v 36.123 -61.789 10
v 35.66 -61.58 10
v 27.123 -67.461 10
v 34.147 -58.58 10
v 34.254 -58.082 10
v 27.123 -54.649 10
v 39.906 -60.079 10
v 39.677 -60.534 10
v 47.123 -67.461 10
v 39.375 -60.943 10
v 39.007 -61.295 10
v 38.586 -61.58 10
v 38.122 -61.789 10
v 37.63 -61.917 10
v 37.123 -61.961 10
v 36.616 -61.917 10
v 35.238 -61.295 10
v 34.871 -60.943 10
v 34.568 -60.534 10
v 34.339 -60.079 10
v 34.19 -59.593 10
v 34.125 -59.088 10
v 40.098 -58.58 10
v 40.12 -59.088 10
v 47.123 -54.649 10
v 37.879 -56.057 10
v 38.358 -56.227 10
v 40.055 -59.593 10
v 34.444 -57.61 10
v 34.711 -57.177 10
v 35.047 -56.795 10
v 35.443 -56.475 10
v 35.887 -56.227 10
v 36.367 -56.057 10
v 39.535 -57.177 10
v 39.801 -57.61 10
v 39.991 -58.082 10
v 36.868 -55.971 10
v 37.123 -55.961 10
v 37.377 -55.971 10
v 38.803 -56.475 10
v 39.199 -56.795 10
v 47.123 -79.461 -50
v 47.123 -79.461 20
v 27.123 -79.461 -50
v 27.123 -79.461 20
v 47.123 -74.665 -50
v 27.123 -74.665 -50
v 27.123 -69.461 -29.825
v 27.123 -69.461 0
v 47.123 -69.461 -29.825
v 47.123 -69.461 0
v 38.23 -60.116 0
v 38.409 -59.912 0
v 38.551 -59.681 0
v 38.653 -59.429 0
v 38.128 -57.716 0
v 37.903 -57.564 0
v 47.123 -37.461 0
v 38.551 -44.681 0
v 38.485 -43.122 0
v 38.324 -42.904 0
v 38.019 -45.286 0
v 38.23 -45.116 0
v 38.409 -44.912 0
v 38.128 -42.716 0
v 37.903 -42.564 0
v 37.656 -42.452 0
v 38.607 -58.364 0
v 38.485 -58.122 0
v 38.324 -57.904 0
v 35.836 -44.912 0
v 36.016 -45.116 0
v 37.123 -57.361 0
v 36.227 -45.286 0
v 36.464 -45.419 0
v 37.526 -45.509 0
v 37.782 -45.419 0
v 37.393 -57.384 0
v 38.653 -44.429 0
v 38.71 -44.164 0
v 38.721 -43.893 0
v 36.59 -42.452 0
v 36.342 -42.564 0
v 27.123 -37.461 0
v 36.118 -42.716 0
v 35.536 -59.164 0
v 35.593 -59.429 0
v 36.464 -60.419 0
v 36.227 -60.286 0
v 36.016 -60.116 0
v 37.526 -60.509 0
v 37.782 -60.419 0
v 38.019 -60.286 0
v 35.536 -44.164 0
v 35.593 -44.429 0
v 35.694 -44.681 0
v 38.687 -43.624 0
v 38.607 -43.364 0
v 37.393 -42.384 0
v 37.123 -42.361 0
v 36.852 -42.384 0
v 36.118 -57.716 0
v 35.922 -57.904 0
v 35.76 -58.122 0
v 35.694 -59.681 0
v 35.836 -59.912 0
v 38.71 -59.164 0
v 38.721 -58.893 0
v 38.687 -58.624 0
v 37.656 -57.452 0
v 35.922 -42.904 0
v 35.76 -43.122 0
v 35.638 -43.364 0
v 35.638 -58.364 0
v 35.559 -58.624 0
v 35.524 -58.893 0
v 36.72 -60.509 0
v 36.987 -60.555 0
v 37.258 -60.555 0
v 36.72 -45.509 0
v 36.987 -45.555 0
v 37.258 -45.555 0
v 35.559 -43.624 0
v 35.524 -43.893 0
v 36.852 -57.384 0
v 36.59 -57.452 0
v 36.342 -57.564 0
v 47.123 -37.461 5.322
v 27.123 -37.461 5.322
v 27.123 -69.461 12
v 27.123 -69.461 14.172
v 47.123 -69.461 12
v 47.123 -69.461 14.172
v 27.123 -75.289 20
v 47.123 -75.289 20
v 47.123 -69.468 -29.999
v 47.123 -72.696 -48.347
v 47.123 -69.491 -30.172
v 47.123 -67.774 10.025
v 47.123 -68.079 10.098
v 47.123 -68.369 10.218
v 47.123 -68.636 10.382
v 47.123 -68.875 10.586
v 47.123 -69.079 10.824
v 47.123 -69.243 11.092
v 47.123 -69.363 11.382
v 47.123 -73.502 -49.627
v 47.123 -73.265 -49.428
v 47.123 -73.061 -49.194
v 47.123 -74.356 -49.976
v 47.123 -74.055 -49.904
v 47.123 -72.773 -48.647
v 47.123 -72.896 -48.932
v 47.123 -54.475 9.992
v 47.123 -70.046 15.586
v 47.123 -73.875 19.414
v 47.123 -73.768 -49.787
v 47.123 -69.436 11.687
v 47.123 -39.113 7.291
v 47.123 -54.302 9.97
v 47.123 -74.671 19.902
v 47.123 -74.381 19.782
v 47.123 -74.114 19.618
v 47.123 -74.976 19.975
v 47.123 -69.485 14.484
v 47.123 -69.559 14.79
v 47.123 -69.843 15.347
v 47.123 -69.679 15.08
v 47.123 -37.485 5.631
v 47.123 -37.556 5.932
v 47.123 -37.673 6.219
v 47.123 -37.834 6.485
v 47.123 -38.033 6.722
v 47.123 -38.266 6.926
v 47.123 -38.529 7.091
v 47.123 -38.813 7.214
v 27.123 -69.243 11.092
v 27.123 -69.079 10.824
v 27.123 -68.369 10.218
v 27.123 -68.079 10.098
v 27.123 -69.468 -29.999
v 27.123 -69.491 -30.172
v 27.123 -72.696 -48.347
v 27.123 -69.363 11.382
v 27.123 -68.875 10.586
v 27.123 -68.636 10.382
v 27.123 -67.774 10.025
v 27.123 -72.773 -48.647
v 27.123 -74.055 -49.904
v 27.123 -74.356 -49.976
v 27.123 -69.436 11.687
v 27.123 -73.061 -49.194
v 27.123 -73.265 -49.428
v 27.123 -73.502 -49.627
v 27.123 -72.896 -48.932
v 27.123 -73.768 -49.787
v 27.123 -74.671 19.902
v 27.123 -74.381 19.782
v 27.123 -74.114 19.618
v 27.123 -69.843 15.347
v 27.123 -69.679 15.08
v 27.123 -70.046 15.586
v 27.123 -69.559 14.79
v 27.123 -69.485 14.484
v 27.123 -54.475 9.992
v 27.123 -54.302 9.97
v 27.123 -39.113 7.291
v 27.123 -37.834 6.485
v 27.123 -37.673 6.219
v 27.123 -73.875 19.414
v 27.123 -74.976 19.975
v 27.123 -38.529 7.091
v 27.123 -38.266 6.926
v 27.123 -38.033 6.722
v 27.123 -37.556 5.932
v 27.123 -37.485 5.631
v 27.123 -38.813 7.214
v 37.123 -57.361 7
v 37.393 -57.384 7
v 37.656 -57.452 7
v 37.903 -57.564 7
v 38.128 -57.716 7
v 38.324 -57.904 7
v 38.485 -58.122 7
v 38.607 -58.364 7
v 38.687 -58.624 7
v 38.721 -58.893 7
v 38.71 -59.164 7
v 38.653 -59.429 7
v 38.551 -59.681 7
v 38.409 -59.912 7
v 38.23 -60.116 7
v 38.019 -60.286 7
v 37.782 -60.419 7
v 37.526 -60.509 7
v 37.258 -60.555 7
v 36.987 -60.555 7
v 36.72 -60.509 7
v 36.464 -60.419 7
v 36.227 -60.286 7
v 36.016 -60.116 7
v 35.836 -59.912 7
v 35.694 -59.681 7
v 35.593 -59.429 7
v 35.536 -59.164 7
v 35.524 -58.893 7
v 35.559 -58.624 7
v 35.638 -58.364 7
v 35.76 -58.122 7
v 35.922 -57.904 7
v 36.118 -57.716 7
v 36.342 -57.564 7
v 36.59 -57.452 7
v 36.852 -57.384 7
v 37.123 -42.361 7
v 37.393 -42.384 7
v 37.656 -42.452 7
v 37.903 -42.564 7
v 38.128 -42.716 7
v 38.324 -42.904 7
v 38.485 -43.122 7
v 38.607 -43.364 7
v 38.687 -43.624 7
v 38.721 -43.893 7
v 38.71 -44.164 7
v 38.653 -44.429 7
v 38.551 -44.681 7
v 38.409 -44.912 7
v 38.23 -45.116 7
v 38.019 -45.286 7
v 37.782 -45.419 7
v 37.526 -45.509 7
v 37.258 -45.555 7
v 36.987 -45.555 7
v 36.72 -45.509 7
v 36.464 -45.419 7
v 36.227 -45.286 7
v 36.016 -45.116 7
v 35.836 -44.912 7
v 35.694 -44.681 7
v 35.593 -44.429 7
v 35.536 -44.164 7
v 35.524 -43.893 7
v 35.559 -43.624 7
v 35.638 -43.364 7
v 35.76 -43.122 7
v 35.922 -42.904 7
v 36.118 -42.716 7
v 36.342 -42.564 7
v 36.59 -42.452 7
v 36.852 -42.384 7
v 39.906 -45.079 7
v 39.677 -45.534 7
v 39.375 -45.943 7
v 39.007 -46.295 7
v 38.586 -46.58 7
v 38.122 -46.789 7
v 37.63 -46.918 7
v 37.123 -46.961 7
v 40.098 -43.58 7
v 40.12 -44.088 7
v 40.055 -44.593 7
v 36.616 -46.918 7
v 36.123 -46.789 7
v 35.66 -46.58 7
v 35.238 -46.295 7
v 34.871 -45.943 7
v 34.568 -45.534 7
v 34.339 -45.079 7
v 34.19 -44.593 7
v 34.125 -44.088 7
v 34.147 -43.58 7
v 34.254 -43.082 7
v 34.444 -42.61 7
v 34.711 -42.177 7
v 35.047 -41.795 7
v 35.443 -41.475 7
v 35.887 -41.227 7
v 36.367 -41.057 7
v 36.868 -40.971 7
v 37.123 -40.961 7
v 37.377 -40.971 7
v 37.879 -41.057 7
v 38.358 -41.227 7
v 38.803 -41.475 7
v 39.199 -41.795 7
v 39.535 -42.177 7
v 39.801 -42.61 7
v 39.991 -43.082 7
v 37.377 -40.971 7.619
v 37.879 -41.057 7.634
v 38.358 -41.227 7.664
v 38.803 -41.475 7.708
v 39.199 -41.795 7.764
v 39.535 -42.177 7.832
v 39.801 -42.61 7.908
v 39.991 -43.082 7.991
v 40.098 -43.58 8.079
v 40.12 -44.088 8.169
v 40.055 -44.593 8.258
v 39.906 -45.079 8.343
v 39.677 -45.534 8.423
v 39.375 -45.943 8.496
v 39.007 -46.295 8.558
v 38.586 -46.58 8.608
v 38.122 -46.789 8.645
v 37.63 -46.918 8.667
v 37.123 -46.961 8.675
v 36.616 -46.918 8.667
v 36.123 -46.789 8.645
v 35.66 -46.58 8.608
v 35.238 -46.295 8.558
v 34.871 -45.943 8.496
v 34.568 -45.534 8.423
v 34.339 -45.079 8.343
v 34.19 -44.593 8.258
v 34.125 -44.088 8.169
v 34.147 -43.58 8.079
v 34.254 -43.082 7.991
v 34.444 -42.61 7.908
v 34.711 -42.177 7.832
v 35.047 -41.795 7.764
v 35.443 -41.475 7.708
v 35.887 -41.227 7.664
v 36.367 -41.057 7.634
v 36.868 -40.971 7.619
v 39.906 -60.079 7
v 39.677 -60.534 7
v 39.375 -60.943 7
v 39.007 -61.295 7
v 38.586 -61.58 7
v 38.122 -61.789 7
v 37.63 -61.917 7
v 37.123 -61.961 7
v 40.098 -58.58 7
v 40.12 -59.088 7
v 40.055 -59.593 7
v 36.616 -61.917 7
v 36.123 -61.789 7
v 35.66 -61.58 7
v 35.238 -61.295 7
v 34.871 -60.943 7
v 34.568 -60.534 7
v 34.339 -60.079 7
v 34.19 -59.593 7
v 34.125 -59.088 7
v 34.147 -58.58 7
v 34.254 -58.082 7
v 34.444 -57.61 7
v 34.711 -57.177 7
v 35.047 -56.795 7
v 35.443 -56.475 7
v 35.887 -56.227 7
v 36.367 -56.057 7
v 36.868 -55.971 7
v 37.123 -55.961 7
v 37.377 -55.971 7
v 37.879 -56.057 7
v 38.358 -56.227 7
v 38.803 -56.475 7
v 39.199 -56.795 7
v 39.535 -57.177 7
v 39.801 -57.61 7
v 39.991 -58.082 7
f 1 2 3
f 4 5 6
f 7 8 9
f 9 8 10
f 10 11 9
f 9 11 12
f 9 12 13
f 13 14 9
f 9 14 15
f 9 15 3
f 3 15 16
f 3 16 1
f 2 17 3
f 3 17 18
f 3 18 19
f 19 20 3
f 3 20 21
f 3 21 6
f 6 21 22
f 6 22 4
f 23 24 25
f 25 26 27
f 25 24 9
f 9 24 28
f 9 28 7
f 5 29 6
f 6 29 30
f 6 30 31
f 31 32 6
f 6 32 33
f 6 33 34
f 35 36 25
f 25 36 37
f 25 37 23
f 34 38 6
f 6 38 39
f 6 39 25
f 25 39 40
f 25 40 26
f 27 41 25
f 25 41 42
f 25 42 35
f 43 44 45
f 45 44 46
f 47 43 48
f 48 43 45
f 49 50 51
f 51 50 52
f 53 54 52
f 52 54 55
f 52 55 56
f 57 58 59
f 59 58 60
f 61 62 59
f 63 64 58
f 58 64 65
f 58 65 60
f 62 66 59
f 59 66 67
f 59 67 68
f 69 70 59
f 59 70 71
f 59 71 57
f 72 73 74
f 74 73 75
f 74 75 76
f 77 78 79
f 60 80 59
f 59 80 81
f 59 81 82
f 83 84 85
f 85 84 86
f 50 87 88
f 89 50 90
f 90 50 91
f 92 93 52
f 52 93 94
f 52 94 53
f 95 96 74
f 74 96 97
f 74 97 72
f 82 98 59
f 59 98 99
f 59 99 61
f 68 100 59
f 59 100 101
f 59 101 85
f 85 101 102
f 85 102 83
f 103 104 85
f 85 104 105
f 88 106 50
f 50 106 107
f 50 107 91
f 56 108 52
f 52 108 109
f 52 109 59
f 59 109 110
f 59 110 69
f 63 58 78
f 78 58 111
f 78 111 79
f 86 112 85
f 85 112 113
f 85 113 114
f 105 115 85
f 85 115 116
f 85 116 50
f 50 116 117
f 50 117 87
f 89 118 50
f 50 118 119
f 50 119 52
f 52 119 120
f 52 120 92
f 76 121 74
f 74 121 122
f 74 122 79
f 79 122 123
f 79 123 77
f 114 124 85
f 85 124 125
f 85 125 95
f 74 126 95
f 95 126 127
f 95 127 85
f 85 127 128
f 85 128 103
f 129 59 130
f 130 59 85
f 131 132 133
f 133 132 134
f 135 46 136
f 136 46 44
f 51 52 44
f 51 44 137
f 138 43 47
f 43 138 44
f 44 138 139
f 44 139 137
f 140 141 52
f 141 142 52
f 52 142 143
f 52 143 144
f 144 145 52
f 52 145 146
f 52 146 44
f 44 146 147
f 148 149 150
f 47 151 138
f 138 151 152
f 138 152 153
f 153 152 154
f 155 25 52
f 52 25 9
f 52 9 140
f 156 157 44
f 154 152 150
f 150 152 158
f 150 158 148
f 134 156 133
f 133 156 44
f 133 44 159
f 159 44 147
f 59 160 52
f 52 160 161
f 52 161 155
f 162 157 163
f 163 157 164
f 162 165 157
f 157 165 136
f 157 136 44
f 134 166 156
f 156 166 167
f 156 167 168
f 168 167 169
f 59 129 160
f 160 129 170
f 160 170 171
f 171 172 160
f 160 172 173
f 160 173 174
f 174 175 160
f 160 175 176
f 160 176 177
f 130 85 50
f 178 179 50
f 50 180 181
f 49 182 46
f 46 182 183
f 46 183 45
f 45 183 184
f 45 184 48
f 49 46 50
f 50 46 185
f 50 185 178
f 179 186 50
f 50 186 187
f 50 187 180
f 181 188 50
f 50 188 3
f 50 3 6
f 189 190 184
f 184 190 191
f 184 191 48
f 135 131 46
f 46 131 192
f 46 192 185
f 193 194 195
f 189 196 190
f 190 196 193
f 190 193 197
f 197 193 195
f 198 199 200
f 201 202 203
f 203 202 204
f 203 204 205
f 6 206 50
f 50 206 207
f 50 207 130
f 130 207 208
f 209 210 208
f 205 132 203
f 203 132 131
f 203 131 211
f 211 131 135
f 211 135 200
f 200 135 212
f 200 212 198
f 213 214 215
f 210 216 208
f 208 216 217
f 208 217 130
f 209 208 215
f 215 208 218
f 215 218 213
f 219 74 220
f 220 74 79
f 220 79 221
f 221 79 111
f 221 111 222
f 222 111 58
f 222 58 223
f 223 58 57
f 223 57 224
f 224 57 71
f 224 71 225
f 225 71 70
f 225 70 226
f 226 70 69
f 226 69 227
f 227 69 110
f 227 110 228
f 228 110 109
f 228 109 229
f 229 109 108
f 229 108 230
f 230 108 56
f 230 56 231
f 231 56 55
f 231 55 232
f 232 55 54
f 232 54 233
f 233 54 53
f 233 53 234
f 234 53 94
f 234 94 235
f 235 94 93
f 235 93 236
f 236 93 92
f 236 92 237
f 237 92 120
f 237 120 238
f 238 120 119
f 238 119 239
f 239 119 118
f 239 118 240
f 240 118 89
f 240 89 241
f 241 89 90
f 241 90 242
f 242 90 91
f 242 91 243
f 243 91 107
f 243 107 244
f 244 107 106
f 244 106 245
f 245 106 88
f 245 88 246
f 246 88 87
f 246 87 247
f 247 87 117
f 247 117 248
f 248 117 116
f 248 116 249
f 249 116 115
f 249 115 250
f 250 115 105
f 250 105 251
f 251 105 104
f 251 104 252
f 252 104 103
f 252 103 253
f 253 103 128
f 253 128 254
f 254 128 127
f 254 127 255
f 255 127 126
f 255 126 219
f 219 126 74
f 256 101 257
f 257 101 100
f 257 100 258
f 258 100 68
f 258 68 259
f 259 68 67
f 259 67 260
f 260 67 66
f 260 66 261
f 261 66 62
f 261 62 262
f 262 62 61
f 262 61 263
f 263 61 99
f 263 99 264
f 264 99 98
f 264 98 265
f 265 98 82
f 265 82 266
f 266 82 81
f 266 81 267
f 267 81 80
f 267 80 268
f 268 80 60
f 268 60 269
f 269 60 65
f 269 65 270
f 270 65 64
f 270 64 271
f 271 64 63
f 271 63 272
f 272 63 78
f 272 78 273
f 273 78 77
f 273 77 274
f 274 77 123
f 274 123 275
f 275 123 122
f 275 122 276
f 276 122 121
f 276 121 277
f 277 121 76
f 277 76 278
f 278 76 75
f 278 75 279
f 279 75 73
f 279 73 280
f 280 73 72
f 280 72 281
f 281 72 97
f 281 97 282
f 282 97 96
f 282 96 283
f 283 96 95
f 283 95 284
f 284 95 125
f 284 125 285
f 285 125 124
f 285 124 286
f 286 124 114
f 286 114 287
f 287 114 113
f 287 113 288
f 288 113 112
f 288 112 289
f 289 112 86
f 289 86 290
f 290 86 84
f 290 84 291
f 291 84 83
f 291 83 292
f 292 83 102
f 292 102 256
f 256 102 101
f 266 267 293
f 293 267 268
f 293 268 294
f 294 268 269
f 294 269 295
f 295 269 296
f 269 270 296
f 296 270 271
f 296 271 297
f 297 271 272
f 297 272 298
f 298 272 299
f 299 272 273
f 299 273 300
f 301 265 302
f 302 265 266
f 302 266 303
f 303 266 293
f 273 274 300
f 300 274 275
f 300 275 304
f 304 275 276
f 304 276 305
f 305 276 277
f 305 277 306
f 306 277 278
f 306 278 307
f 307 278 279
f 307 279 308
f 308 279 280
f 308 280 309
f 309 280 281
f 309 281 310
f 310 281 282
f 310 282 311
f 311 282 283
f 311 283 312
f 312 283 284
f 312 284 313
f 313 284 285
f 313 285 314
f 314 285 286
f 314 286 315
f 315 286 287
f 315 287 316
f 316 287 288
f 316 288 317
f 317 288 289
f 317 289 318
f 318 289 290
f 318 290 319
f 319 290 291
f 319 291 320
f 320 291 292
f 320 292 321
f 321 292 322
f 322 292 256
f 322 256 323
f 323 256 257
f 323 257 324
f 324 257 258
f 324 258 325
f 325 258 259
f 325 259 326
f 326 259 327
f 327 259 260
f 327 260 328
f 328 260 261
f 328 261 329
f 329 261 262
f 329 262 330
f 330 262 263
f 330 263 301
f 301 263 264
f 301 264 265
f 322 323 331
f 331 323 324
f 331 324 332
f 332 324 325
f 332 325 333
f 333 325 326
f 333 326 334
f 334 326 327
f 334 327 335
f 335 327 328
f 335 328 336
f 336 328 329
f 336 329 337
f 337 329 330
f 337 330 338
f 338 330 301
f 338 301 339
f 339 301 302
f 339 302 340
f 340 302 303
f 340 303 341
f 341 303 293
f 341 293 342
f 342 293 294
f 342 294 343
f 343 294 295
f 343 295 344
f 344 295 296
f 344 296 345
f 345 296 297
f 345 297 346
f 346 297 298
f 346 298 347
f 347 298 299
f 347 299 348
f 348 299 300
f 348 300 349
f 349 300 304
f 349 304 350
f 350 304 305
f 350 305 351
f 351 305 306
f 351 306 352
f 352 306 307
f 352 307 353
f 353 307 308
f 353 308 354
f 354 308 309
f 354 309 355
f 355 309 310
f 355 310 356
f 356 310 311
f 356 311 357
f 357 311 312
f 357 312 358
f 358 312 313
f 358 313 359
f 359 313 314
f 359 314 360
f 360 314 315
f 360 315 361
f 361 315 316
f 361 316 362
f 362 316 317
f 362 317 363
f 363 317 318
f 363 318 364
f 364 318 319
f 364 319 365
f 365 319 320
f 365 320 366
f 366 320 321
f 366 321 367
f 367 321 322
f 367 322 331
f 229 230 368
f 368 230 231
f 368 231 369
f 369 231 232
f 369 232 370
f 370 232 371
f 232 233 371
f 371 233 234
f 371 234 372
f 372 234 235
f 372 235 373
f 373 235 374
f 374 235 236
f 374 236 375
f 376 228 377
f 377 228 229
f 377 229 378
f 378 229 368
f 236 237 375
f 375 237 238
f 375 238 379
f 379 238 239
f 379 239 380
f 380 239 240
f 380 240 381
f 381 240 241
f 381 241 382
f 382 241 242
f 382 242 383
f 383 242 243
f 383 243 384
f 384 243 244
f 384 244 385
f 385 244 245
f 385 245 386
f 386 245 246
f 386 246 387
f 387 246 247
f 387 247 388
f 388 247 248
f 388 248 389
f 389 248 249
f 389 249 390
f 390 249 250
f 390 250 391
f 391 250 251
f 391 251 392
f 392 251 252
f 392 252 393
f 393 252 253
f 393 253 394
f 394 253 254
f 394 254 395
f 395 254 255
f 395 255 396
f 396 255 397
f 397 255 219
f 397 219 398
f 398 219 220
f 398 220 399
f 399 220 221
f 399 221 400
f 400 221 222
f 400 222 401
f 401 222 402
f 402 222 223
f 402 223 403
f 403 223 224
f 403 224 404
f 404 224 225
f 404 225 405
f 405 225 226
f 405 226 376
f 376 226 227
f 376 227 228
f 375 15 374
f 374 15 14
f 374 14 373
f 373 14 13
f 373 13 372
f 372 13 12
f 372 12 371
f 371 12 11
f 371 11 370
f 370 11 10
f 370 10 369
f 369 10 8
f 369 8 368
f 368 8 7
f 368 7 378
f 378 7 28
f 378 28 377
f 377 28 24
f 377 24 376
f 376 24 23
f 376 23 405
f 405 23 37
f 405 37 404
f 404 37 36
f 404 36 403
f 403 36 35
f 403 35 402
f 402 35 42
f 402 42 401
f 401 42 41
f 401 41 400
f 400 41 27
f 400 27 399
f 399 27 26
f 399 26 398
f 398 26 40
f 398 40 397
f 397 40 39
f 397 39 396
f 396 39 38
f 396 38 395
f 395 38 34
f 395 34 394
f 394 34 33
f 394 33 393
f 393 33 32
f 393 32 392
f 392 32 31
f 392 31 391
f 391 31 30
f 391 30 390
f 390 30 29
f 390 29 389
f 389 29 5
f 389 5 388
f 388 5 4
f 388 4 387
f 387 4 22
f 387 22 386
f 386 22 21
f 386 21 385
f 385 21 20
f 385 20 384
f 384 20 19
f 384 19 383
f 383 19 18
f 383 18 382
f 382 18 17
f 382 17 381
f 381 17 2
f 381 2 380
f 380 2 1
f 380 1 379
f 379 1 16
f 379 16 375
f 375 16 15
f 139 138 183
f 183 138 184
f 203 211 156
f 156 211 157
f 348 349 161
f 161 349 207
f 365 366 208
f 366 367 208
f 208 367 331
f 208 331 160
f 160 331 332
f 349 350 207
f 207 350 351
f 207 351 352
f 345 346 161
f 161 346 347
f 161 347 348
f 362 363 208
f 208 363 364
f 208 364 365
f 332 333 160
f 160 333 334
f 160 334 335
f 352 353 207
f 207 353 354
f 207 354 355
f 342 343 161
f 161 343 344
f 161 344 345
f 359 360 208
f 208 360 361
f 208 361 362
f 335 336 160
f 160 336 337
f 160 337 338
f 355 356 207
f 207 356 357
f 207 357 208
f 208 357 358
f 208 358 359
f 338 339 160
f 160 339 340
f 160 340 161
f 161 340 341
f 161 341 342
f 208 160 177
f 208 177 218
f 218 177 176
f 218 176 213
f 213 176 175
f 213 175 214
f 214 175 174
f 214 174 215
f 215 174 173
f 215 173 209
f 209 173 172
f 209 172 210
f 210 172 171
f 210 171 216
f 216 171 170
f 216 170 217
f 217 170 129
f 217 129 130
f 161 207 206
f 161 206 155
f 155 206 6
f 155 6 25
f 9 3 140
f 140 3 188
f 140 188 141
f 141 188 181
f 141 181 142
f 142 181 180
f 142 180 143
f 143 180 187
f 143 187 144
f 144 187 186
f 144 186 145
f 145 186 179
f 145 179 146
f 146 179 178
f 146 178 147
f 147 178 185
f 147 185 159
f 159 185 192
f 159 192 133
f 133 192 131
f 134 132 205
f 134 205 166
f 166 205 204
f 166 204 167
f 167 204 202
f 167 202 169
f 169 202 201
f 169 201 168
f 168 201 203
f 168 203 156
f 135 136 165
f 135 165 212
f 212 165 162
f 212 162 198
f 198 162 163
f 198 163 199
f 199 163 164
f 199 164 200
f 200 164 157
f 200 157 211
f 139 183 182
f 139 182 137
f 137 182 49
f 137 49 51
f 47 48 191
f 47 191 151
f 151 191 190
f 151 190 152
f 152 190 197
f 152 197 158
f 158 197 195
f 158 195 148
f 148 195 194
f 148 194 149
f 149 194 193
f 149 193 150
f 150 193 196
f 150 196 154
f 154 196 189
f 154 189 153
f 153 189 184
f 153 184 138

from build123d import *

# Parameters (mm, degrees)
SKETCH3_W           = 10
SKETCH3_H           = 32
BOSS_EXTRUDE1_DEPTH = 10
SKETCH4_R           = 1.6
CUT_EXTRUDE1_DEPTH  = 106.045434916
CUT_EXTRUDE2_START  = -7
SKETCH4_3_R         = 3
SKETCH4_3_R_2       = 1.6
CUT_EXTRUDE2_DEPTH  = 3
CHAMFER1_SIZE       = 20
CHAMFER1_SIZE2      = 3.526539614
CHAMFER2_SIZE       = 5
CHAMFER3_SIZE       = 17.013845459
CHAMFER3_SIZE_2     = 3
FILLET1_R           = 2


with BuildPart() as part:
    # Sketch3 → Boss-Extrude1 (new, symmetric)
    with BuildSketch(Plane(origin=(37.122691811, 0, 0), x_dir=(0, 0, -1), z_dir=(1, 0, 0))):
        Polygon((50, -69.46065261), (0, -69.46065261), (-10, -69.46065261), (-20, -69.46065261), (-20, -79.46065261), (50, -79.46065261), align=None)
        with Locations((-5, -53.46065261)):
            Rectangle(SKETCH3_W, SKETCH3_H)
    extrude(amount=BOSS_EXTRUDE1_DEPTH, both=True)

    # Sketch4 → Cut-Extrude1 (cut, through all)
    with BuildSketch(Plane(origin=(0, 0, 0), x_dir=(-1, 0, 0), z_dir=(0, 0, -1))):
        with Locations(Location((-37.122691811, -43.96065261, 0), (0, 0, 90))):
            Circle(SKETCH4_R)
        with Locations(Location((-37.122691811, -58.96065261, 0), (0, 0, 90))):
            Circle(SKETCH4_R)
    extrude(amount=-CUT_EXTRUDE1_DEPTH, mode=Mode.SUBTRACT)

    # Sketch4<3> → Cut-Extrude2 (cut)
    # profile 1 of 2: a face of its own
    with BuildSketch(Plane(origin=(0, 0, 0), x_dir=(-1, 0, 0), z_dir=(0, 0, -1)).offset(CUT_EXTRUDE2_START)):
        with Locations(Location((-37.122691811, -43.96065261, 0), (0, 0, 90))):
            Circle(SKETCH4_3_R)
        with Locations(Location((-37.122691811, -43.96065261, 0), (0, 0, 90))):
            Circle(SKETCH4_3_R_2, mode=Mode.SUBTRACT)
    # profile 2 of 2: a face of its own
    with BuildSketch(Plane(origin=(0, 0, 0), x_dir=(-1, 0, 0), z_dir=(0, 0, -1)).offset(CUT_EXTRUDE2_START)):
        with Locations(Location((-37.122691811, -58.96065261, 0), (0, 0, 90))):
            Circle(SKETCH4_3_R)
        with Locations(Location((-37.122691811, -58.96065261, 0), (0, 0, 90))):
            Circle(SKETCH4_3_R_2, mode=Mode.SUBTRACT)
    extrude(amount=-CUT_EXTRUDE2_DEPTH, mode=Mode.SUBTRACT)

    # Chamfer1
    chamfer1_edges = [part.edges().sort_by_distance(p)[0] for p in [
        (37.122691811, -69.46065261, -50),
    ]]
    chamfer1_side = [part.faces().sort_by_distance(p)[0] for p in [
        (37.122691811, -69.46065261, -25),
    ]]
    chamfer(chamfer1_edges, length=CHAMFER1_SIZE, length2=CHAMFER1_SIZE2, reference=chamfer1_side[0])

    # Chamfer2
    chamfer2_edges = [part.edges().sort_by_distance(p)[0] for p in [
        (37.122691811, -69.46065261, 20),
    ]]
    chamfer(chamfer2_edges, length=CHAMFER2_SIZE)

    # Chamfer3
    # the kernel refuses this chamfer: 17.013845459, 3 mm, written as the material it takes off along each edge
    with BuildSketch(Plane(origin=(-17.08844569, -37.46065261, 10), x_dir=(0, -0.9999776716360548, 0.006682531656101368), z_dir=(1, 0, 0))) as chamfer3_piece_1:
        Polygon((CHAMFER3_SIZE * 0.999977671627, CHAMFER3_SIZE * 0.00668253165604), (-CHAMFER3_SIZE_2 * 0.0066825316561, CHAMFER3_SIZE_2 * 0.999977671636), (0, 0), align=None)
    extrude(amount=108.422275002, mode=Mode.SUBTRACT)

    # Fillet1
    fillet1_edges = [part.edges().sort_by_distance(p)[0] for p in [
        (37.122691811, -69.46065261, 10),
        (37.122691811, -69.46065261, -30),
        (37.122691811, -72.987192224, -50),
        (37.122691811, -74.46065261, 20),
        (37.122691811, -69.46065261, 15),
        (37.122691811, -54.474498068, 10),
        (37.122691811, -37.46065261, 7),
    ]]
    fillet(fillet1_edges, radius=FILLET1_R)


solid = part.part
